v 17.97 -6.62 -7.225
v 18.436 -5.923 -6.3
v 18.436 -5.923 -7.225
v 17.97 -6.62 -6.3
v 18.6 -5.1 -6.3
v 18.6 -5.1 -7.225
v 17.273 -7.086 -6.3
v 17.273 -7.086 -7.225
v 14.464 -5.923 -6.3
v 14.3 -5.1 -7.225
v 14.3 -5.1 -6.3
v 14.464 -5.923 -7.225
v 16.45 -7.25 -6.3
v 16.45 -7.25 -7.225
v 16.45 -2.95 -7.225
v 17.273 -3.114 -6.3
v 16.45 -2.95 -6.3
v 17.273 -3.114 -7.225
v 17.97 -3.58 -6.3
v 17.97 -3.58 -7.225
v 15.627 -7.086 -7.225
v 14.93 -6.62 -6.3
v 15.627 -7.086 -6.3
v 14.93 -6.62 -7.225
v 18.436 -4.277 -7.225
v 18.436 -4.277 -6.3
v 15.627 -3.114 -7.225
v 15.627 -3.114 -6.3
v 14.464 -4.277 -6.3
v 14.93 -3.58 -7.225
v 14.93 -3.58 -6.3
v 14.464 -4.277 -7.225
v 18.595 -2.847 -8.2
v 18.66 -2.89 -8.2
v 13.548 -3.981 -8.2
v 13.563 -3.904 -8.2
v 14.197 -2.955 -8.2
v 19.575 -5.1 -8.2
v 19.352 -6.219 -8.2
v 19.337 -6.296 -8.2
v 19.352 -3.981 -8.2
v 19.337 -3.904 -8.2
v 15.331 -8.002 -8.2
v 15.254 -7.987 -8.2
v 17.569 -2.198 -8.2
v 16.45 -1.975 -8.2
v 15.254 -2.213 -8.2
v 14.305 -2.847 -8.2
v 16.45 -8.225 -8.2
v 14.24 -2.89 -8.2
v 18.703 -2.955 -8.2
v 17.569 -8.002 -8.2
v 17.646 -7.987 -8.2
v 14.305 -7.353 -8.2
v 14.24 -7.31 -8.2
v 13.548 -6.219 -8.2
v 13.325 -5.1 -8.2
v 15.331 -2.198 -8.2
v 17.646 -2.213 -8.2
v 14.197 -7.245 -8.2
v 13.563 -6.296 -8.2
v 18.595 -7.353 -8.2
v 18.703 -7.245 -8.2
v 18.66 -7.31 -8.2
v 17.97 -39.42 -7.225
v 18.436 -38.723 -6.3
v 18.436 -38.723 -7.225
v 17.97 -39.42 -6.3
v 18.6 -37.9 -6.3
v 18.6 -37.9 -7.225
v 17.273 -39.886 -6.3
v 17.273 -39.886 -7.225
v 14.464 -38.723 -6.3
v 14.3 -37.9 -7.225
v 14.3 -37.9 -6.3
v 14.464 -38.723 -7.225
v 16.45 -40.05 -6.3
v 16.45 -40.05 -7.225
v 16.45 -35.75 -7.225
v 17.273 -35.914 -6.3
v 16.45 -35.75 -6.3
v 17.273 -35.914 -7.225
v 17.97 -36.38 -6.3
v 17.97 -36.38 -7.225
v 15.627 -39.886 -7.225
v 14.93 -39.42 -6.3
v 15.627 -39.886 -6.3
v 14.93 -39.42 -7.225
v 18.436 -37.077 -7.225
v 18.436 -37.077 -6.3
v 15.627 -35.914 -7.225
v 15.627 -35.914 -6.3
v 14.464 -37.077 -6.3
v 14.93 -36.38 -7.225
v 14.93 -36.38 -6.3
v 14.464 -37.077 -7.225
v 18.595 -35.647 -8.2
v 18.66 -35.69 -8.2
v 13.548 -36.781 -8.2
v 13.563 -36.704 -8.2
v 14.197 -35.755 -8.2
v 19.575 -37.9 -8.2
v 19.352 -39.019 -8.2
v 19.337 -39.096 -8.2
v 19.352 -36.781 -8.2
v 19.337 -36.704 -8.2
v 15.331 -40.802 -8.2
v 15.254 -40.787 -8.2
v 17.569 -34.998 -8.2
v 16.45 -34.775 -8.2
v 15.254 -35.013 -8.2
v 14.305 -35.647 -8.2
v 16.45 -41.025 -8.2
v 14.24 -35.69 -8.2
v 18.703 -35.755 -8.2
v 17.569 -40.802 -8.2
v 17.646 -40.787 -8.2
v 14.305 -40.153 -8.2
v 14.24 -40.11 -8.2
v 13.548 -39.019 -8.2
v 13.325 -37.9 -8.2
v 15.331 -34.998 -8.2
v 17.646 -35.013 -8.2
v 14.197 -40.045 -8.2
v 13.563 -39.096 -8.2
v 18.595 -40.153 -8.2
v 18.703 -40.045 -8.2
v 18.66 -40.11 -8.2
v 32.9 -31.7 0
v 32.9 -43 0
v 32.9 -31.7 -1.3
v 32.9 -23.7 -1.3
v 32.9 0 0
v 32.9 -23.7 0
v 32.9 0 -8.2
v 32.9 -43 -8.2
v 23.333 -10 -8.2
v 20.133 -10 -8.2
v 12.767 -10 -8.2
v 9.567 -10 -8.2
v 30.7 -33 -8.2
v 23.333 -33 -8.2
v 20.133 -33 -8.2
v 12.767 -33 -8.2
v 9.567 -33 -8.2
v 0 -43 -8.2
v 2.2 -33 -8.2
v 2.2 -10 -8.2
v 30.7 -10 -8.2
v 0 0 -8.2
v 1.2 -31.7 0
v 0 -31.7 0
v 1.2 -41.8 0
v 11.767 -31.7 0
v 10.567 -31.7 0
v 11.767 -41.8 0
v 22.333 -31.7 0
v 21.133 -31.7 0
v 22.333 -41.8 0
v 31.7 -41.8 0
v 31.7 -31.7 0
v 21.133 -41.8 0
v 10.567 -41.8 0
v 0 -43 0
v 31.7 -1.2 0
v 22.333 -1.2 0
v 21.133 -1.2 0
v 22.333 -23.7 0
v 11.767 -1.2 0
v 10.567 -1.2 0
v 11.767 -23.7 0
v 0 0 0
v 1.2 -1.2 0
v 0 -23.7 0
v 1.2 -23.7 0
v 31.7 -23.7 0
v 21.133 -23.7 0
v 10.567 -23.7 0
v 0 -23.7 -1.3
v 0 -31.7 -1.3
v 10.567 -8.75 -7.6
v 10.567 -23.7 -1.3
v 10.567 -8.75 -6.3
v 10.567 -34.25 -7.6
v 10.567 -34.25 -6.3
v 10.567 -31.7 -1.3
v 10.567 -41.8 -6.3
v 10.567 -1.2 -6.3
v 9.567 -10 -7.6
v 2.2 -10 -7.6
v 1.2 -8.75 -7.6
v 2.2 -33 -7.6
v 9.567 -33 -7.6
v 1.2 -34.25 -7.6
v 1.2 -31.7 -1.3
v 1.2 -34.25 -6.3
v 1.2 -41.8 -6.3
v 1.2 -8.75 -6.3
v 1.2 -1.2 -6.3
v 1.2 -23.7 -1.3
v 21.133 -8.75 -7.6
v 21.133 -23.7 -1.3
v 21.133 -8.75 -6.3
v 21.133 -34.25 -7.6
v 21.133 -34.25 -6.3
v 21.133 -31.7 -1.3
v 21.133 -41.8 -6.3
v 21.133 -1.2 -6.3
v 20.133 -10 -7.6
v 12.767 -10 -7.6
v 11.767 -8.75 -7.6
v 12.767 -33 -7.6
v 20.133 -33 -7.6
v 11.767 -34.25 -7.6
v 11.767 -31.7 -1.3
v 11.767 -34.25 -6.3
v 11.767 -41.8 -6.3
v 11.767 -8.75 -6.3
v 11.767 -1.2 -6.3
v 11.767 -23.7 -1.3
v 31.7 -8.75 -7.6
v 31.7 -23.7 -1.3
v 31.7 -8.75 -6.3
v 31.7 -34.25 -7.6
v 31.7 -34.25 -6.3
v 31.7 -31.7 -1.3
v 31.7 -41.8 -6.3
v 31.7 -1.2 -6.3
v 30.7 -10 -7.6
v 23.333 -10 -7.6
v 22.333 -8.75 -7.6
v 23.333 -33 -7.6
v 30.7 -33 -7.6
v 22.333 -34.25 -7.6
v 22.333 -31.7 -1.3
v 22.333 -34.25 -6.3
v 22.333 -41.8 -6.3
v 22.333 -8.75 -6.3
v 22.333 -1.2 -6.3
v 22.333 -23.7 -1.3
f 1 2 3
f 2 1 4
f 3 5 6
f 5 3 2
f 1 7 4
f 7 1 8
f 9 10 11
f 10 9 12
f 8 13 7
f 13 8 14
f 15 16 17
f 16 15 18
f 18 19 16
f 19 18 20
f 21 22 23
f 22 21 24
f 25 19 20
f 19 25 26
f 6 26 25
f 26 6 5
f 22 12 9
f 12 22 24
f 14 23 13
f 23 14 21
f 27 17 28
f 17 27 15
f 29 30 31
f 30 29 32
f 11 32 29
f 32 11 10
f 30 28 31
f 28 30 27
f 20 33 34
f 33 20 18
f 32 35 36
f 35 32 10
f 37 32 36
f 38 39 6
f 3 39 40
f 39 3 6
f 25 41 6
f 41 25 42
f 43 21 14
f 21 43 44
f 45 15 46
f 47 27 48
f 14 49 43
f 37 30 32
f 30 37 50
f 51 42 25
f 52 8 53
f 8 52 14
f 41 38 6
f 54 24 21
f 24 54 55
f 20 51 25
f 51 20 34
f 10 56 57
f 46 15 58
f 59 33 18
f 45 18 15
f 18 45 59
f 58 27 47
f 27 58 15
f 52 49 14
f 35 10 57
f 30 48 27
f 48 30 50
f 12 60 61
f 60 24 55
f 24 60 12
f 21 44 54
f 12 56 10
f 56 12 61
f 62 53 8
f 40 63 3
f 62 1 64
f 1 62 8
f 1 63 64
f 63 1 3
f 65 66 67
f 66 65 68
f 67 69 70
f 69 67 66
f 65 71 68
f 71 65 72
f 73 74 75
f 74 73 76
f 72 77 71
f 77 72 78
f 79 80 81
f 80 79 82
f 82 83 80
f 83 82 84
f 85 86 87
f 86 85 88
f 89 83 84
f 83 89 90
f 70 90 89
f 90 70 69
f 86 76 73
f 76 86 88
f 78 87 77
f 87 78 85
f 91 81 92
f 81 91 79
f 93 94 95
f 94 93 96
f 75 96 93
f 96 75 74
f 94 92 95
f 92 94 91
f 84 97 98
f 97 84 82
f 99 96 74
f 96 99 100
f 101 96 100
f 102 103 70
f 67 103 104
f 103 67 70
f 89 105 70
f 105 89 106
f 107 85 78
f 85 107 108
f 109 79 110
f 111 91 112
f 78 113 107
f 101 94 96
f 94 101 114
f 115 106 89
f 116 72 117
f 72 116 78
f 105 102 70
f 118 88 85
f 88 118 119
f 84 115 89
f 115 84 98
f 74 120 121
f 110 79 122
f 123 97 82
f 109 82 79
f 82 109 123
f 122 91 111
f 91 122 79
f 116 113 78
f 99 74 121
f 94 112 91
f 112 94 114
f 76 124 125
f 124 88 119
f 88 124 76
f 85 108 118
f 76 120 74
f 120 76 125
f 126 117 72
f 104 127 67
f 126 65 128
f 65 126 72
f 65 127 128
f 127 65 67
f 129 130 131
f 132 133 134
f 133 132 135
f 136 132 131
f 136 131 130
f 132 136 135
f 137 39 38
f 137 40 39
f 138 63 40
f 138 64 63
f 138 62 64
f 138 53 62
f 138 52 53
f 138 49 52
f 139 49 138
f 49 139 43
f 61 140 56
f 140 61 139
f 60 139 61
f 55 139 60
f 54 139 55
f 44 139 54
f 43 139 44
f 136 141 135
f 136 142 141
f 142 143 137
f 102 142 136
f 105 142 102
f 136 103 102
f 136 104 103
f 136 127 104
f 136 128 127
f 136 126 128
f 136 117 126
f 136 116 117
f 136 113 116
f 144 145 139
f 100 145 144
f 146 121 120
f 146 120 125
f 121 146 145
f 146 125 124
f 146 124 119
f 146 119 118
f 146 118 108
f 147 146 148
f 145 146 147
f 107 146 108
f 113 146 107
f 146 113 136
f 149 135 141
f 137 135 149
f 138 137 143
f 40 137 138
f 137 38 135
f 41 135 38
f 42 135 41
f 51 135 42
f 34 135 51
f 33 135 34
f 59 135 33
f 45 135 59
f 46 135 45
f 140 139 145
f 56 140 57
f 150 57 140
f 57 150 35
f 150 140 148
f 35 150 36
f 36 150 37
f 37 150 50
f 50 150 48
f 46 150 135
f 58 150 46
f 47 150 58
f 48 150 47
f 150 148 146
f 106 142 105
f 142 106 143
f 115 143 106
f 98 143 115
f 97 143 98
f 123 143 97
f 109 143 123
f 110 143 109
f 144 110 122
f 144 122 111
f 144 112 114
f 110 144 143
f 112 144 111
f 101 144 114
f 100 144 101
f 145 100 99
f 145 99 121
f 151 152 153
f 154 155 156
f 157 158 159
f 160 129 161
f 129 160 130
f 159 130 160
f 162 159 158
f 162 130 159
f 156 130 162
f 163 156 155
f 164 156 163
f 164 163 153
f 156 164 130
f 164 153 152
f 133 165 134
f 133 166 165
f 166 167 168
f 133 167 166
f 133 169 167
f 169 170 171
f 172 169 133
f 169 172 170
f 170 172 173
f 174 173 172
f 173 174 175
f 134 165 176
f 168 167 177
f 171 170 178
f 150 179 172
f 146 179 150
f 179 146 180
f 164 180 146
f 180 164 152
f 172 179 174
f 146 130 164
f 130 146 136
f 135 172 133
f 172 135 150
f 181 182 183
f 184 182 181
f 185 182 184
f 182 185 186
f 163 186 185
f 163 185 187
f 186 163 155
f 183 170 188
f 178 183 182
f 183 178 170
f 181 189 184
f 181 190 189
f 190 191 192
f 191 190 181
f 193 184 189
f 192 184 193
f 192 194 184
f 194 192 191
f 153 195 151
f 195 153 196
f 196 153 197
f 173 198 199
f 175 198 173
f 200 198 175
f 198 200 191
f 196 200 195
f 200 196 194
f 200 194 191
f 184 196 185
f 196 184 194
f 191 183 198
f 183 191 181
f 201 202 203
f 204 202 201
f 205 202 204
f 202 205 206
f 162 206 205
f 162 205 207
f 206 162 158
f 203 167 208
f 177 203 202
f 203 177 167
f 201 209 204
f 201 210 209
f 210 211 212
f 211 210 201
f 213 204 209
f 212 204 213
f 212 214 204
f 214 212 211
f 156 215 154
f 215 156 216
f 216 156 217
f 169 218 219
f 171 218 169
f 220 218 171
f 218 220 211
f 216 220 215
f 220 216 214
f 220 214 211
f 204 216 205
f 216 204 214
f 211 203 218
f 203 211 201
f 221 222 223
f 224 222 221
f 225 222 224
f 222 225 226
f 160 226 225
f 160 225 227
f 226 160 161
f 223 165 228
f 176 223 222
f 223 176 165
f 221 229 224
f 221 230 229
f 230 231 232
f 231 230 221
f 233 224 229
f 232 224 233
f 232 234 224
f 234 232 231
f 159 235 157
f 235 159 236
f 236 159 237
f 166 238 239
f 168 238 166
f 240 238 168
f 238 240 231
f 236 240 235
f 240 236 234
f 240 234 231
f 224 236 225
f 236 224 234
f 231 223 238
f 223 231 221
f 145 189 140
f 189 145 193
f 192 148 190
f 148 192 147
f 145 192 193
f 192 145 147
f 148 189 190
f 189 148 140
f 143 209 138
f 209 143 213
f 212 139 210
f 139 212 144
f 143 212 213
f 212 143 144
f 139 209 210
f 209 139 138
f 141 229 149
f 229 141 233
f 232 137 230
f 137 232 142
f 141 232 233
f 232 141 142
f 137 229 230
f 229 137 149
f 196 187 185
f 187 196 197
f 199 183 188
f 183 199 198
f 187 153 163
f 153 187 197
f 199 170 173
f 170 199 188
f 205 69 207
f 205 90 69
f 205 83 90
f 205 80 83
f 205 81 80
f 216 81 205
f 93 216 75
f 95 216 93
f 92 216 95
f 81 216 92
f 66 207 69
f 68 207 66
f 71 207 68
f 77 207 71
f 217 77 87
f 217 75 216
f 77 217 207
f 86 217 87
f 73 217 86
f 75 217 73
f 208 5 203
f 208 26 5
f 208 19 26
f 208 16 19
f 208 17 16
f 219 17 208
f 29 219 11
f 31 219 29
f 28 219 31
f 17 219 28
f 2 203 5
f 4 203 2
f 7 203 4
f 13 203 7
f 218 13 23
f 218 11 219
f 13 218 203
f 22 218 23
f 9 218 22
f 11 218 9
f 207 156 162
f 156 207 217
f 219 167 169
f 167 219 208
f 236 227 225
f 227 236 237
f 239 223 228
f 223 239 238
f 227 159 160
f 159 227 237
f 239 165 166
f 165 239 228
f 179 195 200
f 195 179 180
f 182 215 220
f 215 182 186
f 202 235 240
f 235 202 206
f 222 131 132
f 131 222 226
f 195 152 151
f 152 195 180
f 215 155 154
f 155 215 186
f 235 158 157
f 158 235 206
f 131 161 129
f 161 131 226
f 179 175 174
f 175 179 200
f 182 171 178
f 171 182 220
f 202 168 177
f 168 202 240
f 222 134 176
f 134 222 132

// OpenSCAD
// file: mooney_anun_common.scad
// Mooney M20E anunciator bezel, common code

// Cone is 50% wider than the hole
module hole(dia, height) {
    union () {
        cylinder(height, dia/2, dia/2, $fn=16);
        translate ([0,0, height-(dia/4)]) {
            cylinder(dia/4, dia/2, (dia*1.5)/2, $fn=16);
        }
    }
}
// main file
// Mooney M20E anunciator bezel, tripple light
// Use a black material for this.

body_width = 32.9;
body_length = 43.0;
body_height = 8.2;

wall_thick = 1.20;
lobe_width = (body_width - wall_thick*4)/3;

// glass_width = 9.18;  // with the film folded around
glass_width = lobe_width;
glass_length = 25.0;
glass_thick = 1.7;

screw_dist = 32.8;
screw_dia = 4.3;

use <mooney_anun_common.scad>;

// woops, let's print without a supporting material
rotate (180, [1,0,0]) {

difference () {
    // Main body
    cube([body_width, body_length, body_height]);

        // Glass cavity 1
        translate([wall_thick + (lobe_width - glass_width)/2,
                   (body_length-(glass_length+0.5))/2,
                   -0.1]) {
            cube([glass_width, glass_length+0.5, body_height-0.5]);
        }
        translate([wall_thick*2 + lobe_width + (lobe_width - glass_width)/2,
                   (body_length-(glass_length+0.5))/2,
                   -0.1]) {
            cube([glass_width, glass_length+0.5, body_height-0.5]);
        }
        translate([wall_thick*3 + lobe_width*2 + (lobe_width - glass_width)/2,
                   (body_length-(glass_length+0.5))/2,
                   -0.1]) {
            cube([glass_width, glass_length+0.5, body_height-0.5]);
        }

        // Window 1
        translate([2.2,
                   (body_length-(glass_length-2.0))/2,
                   body_height-2.0]){
            cube([glass_width-2.0, glass_length-2.0, 2.1]);
        }
        // Window 2
        translate([(body_width-(glass_width-2.0))/2,
                   (body_length-(glass_length-2.0))/2,
                   body_height-2.0]){
            cube([glass_width-2.0, glass_length-2.0, 2.1]);
        }
        // Window 3
        translate([body_width-(glass_width-2.0)-2.2,
                   (body_length-(glass_length-2.0))/2,
                   body_height-2.0]){
            cube([glass_width-2.0, glass_length-2.0, 2.1]);
        }

        // Side lobes - thicker for screws, 6.8 mm thick
        translate([wall_thick, wall_thick, -0.1]) {
            cube([lobe_width, body_length-(wall_thick*2), body_height-1.8]);
        }
        translate([wall_thick*2 + lobe_width, wall_thick, -0.1]) {
            cube([lobe_width, body_length-(wall_thick*2), body_height-1.8]);
        }
        translate([wall_thick*3 + lobe_width*2, wall_thick, -0.1]) {
            cube([lobe_width, body_length-(wall_thick*2), body_height-1.8]);
        }

        // Screw holes
        translate([body_width/2,
                   (body_length-screw_dist)/2,
                   body_height-2.4]) {
            hole(screw_dia, 2.5);
        }
        translate([body_width/2,
                   (body_length-screw_dist)/2 + screw_dist,
                   body_height-2.4]) {
            hole(screw_dia, 2.5);
        }

        // Mysterious cut-outs
        // The location of these cut-outs correspond to
        // the light, so perhaps the idea was to provide
        // cooling. But the bulb is under a thick strip
        // of plexiglass, so it does not work that way.
        translate([-0.1, 23.7,-0.1]) {
            cube([body_width+0.2, 8, 1.4]);
        }
}

}
